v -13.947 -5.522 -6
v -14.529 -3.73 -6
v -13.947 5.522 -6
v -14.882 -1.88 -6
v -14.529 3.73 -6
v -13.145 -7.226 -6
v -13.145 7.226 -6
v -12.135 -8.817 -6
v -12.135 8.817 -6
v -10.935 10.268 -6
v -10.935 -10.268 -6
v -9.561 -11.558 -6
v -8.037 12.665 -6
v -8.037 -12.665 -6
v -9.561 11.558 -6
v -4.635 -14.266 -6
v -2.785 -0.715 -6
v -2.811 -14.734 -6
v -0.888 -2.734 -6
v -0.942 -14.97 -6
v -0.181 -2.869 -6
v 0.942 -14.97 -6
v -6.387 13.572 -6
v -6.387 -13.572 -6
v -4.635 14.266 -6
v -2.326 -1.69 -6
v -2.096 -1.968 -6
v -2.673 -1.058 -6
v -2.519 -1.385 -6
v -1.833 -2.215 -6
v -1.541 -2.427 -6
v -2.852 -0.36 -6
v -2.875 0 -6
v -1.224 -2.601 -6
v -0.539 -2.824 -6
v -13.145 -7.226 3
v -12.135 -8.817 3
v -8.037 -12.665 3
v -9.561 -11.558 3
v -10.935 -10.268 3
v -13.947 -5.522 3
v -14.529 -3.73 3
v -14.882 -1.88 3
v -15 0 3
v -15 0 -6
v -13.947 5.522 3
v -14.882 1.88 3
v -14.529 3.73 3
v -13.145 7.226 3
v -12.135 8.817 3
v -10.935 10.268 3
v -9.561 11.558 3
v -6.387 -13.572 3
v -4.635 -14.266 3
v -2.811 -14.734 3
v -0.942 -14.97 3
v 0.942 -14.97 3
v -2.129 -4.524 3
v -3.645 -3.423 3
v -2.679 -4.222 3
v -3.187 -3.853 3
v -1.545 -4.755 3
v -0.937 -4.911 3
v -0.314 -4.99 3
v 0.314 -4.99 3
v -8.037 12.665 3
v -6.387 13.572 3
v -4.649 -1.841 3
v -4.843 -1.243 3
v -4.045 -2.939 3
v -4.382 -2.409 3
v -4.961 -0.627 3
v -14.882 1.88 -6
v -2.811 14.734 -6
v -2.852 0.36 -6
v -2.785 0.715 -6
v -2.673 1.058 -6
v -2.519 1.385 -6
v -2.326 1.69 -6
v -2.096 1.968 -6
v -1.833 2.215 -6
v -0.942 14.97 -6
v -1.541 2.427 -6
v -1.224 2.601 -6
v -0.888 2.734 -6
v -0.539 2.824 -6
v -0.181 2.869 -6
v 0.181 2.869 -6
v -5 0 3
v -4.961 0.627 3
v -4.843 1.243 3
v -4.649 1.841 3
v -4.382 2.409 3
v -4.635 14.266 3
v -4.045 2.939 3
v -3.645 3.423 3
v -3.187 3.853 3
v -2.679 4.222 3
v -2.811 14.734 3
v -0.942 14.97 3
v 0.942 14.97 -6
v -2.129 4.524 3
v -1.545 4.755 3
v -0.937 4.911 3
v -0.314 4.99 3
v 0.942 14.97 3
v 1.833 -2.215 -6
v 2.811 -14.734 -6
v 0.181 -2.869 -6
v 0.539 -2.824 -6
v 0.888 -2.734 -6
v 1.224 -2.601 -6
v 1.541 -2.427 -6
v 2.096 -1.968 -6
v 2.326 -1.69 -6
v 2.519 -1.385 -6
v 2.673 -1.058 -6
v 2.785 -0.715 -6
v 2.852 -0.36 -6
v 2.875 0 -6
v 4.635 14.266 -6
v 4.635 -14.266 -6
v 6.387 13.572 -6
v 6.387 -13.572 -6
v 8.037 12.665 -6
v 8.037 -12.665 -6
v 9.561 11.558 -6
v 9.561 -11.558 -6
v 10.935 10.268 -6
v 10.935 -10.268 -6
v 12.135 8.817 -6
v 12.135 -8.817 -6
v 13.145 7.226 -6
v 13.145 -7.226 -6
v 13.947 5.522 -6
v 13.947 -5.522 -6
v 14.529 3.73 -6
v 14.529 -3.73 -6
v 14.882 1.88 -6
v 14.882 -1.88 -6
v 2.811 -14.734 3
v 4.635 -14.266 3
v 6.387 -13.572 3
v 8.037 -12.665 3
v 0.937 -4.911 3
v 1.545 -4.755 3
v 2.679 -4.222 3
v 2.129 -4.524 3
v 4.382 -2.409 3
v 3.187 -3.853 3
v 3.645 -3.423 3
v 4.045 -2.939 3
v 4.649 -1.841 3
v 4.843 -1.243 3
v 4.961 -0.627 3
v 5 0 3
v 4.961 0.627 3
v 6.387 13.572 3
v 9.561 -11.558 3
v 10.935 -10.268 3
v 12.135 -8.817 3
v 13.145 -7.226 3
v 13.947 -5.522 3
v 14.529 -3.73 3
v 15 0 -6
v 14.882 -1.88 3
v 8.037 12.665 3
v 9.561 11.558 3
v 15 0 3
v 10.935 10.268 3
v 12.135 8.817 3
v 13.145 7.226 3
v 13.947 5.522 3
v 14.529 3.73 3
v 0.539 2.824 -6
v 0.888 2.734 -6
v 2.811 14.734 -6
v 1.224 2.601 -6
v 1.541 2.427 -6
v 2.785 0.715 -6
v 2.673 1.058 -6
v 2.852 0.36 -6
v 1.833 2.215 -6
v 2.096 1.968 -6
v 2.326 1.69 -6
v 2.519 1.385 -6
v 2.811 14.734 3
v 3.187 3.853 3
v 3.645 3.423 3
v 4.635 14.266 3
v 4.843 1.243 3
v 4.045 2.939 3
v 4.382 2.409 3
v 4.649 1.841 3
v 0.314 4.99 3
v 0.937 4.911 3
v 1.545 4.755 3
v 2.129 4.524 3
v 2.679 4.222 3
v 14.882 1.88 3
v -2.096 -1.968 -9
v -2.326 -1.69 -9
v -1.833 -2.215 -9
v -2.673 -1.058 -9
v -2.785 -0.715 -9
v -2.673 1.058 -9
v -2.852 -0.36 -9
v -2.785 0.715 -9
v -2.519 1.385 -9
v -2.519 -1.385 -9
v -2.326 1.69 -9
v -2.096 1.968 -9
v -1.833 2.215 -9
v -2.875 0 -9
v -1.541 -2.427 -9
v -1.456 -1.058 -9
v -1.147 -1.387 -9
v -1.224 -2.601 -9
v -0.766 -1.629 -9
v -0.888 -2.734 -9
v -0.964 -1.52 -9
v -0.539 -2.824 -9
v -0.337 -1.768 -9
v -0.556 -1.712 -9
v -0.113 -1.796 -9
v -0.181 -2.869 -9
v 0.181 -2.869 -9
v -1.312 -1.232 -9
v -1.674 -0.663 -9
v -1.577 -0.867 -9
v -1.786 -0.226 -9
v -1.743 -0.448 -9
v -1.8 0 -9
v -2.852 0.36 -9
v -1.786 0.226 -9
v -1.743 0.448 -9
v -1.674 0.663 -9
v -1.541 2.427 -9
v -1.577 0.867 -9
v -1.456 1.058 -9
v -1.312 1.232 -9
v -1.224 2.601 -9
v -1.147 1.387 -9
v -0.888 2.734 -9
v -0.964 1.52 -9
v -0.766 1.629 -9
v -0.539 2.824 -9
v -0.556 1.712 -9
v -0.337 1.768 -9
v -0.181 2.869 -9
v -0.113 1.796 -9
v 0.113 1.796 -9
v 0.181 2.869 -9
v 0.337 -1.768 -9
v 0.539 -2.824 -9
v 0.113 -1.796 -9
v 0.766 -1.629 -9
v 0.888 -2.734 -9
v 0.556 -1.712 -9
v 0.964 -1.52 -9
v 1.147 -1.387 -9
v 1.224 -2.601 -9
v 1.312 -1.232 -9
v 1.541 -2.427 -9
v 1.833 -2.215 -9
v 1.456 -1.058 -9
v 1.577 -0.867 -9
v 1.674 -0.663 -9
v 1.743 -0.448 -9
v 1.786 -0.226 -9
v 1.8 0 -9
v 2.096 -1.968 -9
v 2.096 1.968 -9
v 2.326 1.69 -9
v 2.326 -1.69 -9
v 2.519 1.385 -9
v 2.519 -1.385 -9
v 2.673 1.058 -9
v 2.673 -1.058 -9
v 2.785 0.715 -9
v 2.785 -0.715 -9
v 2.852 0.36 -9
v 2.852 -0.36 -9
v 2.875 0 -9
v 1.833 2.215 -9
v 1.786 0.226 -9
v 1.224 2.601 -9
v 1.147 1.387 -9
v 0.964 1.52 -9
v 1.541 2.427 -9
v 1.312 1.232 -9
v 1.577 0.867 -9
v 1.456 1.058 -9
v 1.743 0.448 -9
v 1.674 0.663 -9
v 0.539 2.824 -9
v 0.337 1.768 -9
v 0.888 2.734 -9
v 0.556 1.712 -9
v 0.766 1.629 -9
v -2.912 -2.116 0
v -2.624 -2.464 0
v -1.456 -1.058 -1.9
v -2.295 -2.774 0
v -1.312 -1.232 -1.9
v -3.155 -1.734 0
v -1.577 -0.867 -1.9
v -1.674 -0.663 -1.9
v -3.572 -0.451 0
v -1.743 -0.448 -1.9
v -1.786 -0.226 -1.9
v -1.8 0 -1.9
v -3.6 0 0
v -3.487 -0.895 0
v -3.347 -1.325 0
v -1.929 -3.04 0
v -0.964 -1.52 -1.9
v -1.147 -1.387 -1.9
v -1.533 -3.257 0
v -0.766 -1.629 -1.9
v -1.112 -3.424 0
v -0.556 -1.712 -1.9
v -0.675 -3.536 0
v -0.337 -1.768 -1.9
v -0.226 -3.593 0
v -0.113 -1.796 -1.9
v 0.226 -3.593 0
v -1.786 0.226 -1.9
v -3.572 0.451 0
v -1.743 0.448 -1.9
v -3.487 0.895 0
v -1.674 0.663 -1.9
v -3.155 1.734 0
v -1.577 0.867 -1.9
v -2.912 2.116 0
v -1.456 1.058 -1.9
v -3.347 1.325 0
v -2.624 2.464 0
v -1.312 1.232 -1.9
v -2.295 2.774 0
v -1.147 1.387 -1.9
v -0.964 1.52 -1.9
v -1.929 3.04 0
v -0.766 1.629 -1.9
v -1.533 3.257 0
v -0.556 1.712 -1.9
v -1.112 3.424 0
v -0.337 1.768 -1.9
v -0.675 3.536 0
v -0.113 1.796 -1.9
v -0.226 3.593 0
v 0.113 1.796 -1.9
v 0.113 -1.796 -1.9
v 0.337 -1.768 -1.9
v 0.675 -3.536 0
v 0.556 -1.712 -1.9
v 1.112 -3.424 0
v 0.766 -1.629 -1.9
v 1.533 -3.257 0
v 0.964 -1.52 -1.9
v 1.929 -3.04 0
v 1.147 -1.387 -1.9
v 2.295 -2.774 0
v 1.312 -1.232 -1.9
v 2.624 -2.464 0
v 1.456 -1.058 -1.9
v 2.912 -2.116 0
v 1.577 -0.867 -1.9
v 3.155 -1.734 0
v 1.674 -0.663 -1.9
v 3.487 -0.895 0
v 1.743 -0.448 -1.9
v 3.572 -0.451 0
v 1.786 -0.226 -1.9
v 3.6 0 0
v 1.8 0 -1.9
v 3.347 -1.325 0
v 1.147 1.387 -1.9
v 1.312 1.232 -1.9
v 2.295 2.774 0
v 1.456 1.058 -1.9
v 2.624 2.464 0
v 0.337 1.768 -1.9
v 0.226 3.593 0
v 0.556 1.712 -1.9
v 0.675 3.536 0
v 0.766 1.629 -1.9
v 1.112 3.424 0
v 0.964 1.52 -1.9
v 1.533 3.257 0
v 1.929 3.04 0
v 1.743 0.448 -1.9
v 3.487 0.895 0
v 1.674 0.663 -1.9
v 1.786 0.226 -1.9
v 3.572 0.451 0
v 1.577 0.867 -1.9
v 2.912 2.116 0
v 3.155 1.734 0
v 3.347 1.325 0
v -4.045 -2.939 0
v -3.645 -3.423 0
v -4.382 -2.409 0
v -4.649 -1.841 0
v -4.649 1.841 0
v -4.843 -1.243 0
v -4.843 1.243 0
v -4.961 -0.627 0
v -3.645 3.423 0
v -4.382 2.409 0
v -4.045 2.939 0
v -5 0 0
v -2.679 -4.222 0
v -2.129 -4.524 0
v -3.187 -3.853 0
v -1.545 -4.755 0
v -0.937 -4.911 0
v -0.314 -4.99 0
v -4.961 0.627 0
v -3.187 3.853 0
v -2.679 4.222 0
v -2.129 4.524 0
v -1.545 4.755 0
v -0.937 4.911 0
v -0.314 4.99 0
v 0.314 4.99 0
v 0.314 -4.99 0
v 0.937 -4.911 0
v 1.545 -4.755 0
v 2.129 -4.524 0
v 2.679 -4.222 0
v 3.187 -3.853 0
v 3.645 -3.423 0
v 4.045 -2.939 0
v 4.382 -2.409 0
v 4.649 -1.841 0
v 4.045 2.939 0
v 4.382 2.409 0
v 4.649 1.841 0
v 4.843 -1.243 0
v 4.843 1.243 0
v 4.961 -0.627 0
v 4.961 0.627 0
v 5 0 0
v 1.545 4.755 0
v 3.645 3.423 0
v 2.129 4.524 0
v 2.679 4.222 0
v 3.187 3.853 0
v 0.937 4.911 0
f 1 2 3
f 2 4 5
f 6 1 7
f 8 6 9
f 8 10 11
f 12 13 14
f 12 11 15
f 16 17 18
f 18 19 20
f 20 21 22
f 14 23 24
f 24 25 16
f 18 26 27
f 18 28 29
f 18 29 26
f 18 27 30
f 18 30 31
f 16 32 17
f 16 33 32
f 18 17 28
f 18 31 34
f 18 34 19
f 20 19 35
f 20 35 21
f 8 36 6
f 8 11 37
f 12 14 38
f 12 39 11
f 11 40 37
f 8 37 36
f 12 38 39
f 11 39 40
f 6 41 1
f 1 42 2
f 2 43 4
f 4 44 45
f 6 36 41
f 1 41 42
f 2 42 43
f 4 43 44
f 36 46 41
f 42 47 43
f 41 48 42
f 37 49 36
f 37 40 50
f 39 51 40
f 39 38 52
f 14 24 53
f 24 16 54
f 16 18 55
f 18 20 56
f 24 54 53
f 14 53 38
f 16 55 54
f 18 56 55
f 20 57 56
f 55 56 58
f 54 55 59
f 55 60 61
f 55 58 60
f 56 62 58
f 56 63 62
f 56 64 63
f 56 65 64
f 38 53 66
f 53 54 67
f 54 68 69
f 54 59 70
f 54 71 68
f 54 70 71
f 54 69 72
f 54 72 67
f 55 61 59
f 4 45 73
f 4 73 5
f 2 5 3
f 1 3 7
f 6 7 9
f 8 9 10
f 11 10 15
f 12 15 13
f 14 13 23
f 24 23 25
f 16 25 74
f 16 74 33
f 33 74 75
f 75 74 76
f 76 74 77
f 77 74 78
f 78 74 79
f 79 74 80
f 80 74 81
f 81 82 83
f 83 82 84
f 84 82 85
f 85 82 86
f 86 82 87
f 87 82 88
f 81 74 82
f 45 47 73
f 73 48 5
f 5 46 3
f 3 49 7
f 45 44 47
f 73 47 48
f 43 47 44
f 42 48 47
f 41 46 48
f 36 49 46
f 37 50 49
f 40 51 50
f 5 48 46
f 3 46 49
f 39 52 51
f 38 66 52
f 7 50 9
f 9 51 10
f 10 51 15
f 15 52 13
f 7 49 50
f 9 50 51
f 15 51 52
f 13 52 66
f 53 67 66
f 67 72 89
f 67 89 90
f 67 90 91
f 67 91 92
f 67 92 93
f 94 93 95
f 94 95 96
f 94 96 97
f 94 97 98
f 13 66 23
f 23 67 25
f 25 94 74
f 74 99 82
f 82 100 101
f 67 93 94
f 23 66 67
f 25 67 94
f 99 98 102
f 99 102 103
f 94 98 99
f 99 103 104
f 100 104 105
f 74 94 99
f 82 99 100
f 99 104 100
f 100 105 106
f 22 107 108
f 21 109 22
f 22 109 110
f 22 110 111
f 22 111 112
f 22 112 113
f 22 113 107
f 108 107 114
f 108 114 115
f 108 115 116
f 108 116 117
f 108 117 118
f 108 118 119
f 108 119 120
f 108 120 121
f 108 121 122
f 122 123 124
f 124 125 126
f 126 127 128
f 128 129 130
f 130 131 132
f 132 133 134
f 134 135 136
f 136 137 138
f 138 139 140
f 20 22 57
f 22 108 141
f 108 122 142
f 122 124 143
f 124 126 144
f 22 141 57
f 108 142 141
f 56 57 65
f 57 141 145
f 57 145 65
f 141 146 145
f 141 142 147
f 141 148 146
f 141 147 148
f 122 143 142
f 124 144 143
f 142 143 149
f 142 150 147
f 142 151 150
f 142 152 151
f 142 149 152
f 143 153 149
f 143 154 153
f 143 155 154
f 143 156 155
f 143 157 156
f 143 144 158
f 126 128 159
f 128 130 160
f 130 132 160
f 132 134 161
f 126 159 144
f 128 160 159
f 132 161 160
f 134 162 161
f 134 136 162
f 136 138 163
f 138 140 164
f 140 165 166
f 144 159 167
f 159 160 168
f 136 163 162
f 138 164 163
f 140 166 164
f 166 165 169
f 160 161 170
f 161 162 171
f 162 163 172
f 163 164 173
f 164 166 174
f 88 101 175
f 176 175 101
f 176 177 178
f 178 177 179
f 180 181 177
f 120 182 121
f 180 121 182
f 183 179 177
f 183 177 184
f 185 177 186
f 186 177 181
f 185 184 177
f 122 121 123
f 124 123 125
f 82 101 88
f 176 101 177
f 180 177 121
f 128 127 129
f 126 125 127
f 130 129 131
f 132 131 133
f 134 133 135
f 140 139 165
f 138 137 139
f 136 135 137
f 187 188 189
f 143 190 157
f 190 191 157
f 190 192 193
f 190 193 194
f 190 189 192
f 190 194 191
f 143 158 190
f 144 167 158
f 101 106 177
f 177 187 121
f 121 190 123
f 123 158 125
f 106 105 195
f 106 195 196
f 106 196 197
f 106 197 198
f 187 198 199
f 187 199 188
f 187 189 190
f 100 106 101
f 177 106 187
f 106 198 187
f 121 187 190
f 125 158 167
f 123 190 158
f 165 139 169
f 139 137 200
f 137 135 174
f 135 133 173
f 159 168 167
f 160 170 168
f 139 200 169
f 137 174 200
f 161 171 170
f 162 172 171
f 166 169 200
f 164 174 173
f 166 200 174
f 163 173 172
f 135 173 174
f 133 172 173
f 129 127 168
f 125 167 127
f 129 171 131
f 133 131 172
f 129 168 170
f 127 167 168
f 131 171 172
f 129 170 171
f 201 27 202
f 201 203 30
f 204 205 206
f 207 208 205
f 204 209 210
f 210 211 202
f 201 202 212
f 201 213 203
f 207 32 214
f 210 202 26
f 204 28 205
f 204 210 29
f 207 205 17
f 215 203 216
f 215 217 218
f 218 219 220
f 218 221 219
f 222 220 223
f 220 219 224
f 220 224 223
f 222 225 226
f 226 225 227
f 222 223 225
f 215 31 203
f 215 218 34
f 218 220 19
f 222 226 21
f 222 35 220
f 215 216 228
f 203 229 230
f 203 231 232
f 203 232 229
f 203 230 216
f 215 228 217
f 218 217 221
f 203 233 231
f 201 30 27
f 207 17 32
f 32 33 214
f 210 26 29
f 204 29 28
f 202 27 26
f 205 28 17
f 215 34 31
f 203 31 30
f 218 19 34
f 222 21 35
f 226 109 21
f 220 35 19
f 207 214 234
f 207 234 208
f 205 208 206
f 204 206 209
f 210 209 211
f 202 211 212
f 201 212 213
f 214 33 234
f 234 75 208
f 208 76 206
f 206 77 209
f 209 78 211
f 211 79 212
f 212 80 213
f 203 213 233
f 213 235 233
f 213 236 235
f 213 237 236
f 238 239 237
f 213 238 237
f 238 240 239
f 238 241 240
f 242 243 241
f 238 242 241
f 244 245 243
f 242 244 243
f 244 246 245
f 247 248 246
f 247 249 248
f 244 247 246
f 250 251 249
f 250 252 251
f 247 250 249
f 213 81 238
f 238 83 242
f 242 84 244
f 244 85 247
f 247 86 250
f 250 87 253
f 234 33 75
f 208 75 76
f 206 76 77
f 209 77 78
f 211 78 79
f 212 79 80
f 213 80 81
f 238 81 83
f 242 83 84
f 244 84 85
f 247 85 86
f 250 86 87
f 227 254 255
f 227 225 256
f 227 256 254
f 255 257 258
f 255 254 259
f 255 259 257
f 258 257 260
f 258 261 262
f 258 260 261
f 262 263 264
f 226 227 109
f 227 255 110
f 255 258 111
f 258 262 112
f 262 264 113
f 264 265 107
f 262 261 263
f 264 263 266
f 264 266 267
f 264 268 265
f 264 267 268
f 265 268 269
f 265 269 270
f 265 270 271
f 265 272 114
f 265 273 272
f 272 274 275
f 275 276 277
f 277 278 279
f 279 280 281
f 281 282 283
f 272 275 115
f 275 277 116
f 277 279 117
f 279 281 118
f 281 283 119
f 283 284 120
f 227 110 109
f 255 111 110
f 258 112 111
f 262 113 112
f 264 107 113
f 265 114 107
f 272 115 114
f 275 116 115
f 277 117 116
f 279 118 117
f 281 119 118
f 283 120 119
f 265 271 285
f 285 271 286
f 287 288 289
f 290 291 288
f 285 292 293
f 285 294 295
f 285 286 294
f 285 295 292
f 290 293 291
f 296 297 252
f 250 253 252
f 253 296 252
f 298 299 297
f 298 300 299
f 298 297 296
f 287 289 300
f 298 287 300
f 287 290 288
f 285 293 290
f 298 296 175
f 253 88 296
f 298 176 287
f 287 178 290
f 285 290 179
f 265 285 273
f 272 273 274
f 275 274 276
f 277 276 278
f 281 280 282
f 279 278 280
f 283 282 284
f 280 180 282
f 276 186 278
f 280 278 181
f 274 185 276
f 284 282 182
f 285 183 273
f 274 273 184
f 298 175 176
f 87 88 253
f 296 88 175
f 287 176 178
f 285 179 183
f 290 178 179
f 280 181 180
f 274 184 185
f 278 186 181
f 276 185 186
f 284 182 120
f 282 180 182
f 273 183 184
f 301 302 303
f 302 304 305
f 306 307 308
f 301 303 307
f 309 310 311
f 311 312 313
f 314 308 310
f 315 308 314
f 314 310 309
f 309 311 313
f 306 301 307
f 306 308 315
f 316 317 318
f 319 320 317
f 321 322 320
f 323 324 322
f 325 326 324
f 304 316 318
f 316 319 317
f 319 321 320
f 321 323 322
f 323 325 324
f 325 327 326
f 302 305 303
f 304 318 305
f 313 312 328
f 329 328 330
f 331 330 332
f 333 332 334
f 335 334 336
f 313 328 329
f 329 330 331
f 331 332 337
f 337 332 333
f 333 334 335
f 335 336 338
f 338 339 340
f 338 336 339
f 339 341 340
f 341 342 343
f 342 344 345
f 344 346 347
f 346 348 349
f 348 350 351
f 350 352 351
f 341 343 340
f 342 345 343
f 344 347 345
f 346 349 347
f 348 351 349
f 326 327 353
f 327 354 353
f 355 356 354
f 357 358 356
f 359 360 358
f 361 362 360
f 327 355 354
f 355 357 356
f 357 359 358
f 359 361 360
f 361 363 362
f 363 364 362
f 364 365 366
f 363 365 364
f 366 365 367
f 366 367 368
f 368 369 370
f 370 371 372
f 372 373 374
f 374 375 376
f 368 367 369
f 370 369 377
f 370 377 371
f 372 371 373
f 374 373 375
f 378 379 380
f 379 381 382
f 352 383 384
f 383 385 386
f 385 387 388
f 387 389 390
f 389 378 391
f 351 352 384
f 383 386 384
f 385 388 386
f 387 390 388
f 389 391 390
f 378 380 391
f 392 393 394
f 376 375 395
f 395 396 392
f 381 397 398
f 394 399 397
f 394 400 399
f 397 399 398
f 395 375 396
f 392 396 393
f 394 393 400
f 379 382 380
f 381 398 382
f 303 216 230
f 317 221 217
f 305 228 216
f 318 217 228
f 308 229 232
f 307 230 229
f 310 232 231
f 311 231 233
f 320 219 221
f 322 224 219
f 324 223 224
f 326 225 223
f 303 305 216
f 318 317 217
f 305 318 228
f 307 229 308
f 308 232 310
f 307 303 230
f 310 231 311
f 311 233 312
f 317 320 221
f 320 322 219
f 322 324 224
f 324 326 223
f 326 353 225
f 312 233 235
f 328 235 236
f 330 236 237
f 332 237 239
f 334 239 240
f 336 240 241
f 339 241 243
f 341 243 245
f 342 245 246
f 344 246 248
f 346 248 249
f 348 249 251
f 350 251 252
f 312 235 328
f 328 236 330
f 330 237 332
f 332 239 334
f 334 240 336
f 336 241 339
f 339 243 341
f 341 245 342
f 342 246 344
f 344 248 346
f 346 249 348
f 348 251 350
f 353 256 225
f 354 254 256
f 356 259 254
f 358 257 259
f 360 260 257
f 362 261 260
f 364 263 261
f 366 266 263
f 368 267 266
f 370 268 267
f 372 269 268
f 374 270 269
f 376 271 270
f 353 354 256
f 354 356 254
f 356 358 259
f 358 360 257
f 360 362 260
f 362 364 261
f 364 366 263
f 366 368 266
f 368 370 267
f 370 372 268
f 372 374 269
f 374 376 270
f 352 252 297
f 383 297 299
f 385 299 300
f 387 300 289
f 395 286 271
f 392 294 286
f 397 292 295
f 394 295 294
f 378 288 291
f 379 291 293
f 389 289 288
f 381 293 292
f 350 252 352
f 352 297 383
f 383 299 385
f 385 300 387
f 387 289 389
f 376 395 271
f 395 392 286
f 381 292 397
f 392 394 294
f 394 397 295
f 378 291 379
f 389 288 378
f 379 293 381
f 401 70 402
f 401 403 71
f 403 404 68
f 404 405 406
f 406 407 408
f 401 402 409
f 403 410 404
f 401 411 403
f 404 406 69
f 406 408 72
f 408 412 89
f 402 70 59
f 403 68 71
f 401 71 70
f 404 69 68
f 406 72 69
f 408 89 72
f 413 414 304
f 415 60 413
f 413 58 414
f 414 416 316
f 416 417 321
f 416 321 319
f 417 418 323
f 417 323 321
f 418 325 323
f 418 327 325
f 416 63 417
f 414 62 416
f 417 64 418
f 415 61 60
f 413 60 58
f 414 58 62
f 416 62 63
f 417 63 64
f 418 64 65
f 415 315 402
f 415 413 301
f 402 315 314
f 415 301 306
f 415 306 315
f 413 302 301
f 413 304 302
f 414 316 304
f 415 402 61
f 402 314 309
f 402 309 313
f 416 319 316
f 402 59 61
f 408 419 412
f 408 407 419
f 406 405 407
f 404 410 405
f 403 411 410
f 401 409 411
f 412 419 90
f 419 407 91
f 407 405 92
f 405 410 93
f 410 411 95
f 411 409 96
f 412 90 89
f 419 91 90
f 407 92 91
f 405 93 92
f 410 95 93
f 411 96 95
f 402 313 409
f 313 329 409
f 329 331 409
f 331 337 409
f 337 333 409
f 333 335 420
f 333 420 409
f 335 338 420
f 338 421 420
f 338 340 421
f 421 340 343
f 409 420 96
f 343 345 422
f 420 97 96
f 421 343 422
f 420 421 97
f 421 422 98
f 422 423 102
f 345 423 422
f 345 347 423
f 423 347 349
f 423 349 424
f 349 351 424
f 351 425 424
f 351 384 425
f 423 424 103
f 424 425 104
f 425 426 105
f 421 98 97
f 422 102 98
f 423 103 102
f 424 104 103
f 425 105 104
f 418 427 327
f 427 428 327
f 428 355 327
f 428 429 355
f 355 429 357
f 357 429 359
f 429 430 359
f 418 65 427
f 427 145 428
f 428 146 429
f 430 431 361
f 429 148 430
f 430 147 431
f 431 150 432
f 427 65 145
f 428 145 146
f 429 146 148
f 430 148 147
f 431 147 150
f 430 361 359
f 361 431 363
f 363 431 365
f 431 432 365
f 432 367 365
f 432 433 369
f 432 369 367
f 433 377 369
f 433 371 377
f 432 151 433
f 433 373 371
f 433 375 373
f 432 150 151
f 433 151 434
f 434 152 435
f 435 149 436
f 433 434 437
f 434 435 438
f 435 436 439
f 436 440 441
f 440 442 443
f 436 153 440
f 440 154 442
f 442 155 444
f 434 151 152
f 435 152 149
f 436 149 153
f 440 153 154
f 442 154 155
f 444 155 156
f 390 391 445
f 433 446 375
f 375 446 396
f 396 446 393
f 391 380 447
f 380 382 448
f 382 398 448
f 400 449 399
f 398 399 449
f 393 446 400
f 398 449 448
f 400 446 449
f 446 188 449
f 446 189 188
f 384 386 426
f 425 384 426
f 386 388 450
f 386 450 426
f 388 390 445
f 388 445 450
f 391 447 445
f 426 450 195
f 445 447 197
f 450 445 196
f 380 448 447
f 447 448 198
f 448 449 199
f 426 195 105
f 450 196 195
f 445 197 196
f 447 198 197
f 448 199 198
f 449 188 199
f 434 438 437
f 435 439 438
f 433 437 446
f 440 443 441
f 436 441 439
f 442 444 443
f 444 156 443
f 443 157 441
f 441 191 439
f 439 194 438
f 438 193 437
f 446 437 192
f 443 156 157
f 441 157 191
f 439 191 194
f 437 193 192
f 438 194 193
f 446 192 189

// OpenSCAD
$fn = 50;


difference() {
	union() {
		translate(v = [0, 0, -6.0000000000]) {
			cylinder(h = 9, r = 15.0000000000);
		}
		#translate(v = [0, 0, -9.0000000000]) {
			cylinder(h = 9, r = 2.8750000000);
		}
	}
	union() {
		translate(v = [0, 0, 0]) {
			rotate(a = [0, 0, 0]) {
				difference() {
					union() {
						translate(v = [0, 0, -9.0000000000]) {
							cylinder(h = 9, r = 1.5000000000);
						}
						translate(v = [0, 0, -1.9000000000]) {
							cylinder(h = 1.9000000000, r1 = 1.8000000000, r2 = 3.6000000000);
						}
						translate(v = [0, 0, -9.0000000000]) {
							cylinder(h = 9, r = 1.8000000000);
						}
						translate(v = [0, 0, -9.0000000000]) {
							cylinder(h = 9, r = 1.5000000000);
						}
					}
					union();
				}
			}
		}
		#cylinder(h = 3, r = 5.0000000000);
	}
}
